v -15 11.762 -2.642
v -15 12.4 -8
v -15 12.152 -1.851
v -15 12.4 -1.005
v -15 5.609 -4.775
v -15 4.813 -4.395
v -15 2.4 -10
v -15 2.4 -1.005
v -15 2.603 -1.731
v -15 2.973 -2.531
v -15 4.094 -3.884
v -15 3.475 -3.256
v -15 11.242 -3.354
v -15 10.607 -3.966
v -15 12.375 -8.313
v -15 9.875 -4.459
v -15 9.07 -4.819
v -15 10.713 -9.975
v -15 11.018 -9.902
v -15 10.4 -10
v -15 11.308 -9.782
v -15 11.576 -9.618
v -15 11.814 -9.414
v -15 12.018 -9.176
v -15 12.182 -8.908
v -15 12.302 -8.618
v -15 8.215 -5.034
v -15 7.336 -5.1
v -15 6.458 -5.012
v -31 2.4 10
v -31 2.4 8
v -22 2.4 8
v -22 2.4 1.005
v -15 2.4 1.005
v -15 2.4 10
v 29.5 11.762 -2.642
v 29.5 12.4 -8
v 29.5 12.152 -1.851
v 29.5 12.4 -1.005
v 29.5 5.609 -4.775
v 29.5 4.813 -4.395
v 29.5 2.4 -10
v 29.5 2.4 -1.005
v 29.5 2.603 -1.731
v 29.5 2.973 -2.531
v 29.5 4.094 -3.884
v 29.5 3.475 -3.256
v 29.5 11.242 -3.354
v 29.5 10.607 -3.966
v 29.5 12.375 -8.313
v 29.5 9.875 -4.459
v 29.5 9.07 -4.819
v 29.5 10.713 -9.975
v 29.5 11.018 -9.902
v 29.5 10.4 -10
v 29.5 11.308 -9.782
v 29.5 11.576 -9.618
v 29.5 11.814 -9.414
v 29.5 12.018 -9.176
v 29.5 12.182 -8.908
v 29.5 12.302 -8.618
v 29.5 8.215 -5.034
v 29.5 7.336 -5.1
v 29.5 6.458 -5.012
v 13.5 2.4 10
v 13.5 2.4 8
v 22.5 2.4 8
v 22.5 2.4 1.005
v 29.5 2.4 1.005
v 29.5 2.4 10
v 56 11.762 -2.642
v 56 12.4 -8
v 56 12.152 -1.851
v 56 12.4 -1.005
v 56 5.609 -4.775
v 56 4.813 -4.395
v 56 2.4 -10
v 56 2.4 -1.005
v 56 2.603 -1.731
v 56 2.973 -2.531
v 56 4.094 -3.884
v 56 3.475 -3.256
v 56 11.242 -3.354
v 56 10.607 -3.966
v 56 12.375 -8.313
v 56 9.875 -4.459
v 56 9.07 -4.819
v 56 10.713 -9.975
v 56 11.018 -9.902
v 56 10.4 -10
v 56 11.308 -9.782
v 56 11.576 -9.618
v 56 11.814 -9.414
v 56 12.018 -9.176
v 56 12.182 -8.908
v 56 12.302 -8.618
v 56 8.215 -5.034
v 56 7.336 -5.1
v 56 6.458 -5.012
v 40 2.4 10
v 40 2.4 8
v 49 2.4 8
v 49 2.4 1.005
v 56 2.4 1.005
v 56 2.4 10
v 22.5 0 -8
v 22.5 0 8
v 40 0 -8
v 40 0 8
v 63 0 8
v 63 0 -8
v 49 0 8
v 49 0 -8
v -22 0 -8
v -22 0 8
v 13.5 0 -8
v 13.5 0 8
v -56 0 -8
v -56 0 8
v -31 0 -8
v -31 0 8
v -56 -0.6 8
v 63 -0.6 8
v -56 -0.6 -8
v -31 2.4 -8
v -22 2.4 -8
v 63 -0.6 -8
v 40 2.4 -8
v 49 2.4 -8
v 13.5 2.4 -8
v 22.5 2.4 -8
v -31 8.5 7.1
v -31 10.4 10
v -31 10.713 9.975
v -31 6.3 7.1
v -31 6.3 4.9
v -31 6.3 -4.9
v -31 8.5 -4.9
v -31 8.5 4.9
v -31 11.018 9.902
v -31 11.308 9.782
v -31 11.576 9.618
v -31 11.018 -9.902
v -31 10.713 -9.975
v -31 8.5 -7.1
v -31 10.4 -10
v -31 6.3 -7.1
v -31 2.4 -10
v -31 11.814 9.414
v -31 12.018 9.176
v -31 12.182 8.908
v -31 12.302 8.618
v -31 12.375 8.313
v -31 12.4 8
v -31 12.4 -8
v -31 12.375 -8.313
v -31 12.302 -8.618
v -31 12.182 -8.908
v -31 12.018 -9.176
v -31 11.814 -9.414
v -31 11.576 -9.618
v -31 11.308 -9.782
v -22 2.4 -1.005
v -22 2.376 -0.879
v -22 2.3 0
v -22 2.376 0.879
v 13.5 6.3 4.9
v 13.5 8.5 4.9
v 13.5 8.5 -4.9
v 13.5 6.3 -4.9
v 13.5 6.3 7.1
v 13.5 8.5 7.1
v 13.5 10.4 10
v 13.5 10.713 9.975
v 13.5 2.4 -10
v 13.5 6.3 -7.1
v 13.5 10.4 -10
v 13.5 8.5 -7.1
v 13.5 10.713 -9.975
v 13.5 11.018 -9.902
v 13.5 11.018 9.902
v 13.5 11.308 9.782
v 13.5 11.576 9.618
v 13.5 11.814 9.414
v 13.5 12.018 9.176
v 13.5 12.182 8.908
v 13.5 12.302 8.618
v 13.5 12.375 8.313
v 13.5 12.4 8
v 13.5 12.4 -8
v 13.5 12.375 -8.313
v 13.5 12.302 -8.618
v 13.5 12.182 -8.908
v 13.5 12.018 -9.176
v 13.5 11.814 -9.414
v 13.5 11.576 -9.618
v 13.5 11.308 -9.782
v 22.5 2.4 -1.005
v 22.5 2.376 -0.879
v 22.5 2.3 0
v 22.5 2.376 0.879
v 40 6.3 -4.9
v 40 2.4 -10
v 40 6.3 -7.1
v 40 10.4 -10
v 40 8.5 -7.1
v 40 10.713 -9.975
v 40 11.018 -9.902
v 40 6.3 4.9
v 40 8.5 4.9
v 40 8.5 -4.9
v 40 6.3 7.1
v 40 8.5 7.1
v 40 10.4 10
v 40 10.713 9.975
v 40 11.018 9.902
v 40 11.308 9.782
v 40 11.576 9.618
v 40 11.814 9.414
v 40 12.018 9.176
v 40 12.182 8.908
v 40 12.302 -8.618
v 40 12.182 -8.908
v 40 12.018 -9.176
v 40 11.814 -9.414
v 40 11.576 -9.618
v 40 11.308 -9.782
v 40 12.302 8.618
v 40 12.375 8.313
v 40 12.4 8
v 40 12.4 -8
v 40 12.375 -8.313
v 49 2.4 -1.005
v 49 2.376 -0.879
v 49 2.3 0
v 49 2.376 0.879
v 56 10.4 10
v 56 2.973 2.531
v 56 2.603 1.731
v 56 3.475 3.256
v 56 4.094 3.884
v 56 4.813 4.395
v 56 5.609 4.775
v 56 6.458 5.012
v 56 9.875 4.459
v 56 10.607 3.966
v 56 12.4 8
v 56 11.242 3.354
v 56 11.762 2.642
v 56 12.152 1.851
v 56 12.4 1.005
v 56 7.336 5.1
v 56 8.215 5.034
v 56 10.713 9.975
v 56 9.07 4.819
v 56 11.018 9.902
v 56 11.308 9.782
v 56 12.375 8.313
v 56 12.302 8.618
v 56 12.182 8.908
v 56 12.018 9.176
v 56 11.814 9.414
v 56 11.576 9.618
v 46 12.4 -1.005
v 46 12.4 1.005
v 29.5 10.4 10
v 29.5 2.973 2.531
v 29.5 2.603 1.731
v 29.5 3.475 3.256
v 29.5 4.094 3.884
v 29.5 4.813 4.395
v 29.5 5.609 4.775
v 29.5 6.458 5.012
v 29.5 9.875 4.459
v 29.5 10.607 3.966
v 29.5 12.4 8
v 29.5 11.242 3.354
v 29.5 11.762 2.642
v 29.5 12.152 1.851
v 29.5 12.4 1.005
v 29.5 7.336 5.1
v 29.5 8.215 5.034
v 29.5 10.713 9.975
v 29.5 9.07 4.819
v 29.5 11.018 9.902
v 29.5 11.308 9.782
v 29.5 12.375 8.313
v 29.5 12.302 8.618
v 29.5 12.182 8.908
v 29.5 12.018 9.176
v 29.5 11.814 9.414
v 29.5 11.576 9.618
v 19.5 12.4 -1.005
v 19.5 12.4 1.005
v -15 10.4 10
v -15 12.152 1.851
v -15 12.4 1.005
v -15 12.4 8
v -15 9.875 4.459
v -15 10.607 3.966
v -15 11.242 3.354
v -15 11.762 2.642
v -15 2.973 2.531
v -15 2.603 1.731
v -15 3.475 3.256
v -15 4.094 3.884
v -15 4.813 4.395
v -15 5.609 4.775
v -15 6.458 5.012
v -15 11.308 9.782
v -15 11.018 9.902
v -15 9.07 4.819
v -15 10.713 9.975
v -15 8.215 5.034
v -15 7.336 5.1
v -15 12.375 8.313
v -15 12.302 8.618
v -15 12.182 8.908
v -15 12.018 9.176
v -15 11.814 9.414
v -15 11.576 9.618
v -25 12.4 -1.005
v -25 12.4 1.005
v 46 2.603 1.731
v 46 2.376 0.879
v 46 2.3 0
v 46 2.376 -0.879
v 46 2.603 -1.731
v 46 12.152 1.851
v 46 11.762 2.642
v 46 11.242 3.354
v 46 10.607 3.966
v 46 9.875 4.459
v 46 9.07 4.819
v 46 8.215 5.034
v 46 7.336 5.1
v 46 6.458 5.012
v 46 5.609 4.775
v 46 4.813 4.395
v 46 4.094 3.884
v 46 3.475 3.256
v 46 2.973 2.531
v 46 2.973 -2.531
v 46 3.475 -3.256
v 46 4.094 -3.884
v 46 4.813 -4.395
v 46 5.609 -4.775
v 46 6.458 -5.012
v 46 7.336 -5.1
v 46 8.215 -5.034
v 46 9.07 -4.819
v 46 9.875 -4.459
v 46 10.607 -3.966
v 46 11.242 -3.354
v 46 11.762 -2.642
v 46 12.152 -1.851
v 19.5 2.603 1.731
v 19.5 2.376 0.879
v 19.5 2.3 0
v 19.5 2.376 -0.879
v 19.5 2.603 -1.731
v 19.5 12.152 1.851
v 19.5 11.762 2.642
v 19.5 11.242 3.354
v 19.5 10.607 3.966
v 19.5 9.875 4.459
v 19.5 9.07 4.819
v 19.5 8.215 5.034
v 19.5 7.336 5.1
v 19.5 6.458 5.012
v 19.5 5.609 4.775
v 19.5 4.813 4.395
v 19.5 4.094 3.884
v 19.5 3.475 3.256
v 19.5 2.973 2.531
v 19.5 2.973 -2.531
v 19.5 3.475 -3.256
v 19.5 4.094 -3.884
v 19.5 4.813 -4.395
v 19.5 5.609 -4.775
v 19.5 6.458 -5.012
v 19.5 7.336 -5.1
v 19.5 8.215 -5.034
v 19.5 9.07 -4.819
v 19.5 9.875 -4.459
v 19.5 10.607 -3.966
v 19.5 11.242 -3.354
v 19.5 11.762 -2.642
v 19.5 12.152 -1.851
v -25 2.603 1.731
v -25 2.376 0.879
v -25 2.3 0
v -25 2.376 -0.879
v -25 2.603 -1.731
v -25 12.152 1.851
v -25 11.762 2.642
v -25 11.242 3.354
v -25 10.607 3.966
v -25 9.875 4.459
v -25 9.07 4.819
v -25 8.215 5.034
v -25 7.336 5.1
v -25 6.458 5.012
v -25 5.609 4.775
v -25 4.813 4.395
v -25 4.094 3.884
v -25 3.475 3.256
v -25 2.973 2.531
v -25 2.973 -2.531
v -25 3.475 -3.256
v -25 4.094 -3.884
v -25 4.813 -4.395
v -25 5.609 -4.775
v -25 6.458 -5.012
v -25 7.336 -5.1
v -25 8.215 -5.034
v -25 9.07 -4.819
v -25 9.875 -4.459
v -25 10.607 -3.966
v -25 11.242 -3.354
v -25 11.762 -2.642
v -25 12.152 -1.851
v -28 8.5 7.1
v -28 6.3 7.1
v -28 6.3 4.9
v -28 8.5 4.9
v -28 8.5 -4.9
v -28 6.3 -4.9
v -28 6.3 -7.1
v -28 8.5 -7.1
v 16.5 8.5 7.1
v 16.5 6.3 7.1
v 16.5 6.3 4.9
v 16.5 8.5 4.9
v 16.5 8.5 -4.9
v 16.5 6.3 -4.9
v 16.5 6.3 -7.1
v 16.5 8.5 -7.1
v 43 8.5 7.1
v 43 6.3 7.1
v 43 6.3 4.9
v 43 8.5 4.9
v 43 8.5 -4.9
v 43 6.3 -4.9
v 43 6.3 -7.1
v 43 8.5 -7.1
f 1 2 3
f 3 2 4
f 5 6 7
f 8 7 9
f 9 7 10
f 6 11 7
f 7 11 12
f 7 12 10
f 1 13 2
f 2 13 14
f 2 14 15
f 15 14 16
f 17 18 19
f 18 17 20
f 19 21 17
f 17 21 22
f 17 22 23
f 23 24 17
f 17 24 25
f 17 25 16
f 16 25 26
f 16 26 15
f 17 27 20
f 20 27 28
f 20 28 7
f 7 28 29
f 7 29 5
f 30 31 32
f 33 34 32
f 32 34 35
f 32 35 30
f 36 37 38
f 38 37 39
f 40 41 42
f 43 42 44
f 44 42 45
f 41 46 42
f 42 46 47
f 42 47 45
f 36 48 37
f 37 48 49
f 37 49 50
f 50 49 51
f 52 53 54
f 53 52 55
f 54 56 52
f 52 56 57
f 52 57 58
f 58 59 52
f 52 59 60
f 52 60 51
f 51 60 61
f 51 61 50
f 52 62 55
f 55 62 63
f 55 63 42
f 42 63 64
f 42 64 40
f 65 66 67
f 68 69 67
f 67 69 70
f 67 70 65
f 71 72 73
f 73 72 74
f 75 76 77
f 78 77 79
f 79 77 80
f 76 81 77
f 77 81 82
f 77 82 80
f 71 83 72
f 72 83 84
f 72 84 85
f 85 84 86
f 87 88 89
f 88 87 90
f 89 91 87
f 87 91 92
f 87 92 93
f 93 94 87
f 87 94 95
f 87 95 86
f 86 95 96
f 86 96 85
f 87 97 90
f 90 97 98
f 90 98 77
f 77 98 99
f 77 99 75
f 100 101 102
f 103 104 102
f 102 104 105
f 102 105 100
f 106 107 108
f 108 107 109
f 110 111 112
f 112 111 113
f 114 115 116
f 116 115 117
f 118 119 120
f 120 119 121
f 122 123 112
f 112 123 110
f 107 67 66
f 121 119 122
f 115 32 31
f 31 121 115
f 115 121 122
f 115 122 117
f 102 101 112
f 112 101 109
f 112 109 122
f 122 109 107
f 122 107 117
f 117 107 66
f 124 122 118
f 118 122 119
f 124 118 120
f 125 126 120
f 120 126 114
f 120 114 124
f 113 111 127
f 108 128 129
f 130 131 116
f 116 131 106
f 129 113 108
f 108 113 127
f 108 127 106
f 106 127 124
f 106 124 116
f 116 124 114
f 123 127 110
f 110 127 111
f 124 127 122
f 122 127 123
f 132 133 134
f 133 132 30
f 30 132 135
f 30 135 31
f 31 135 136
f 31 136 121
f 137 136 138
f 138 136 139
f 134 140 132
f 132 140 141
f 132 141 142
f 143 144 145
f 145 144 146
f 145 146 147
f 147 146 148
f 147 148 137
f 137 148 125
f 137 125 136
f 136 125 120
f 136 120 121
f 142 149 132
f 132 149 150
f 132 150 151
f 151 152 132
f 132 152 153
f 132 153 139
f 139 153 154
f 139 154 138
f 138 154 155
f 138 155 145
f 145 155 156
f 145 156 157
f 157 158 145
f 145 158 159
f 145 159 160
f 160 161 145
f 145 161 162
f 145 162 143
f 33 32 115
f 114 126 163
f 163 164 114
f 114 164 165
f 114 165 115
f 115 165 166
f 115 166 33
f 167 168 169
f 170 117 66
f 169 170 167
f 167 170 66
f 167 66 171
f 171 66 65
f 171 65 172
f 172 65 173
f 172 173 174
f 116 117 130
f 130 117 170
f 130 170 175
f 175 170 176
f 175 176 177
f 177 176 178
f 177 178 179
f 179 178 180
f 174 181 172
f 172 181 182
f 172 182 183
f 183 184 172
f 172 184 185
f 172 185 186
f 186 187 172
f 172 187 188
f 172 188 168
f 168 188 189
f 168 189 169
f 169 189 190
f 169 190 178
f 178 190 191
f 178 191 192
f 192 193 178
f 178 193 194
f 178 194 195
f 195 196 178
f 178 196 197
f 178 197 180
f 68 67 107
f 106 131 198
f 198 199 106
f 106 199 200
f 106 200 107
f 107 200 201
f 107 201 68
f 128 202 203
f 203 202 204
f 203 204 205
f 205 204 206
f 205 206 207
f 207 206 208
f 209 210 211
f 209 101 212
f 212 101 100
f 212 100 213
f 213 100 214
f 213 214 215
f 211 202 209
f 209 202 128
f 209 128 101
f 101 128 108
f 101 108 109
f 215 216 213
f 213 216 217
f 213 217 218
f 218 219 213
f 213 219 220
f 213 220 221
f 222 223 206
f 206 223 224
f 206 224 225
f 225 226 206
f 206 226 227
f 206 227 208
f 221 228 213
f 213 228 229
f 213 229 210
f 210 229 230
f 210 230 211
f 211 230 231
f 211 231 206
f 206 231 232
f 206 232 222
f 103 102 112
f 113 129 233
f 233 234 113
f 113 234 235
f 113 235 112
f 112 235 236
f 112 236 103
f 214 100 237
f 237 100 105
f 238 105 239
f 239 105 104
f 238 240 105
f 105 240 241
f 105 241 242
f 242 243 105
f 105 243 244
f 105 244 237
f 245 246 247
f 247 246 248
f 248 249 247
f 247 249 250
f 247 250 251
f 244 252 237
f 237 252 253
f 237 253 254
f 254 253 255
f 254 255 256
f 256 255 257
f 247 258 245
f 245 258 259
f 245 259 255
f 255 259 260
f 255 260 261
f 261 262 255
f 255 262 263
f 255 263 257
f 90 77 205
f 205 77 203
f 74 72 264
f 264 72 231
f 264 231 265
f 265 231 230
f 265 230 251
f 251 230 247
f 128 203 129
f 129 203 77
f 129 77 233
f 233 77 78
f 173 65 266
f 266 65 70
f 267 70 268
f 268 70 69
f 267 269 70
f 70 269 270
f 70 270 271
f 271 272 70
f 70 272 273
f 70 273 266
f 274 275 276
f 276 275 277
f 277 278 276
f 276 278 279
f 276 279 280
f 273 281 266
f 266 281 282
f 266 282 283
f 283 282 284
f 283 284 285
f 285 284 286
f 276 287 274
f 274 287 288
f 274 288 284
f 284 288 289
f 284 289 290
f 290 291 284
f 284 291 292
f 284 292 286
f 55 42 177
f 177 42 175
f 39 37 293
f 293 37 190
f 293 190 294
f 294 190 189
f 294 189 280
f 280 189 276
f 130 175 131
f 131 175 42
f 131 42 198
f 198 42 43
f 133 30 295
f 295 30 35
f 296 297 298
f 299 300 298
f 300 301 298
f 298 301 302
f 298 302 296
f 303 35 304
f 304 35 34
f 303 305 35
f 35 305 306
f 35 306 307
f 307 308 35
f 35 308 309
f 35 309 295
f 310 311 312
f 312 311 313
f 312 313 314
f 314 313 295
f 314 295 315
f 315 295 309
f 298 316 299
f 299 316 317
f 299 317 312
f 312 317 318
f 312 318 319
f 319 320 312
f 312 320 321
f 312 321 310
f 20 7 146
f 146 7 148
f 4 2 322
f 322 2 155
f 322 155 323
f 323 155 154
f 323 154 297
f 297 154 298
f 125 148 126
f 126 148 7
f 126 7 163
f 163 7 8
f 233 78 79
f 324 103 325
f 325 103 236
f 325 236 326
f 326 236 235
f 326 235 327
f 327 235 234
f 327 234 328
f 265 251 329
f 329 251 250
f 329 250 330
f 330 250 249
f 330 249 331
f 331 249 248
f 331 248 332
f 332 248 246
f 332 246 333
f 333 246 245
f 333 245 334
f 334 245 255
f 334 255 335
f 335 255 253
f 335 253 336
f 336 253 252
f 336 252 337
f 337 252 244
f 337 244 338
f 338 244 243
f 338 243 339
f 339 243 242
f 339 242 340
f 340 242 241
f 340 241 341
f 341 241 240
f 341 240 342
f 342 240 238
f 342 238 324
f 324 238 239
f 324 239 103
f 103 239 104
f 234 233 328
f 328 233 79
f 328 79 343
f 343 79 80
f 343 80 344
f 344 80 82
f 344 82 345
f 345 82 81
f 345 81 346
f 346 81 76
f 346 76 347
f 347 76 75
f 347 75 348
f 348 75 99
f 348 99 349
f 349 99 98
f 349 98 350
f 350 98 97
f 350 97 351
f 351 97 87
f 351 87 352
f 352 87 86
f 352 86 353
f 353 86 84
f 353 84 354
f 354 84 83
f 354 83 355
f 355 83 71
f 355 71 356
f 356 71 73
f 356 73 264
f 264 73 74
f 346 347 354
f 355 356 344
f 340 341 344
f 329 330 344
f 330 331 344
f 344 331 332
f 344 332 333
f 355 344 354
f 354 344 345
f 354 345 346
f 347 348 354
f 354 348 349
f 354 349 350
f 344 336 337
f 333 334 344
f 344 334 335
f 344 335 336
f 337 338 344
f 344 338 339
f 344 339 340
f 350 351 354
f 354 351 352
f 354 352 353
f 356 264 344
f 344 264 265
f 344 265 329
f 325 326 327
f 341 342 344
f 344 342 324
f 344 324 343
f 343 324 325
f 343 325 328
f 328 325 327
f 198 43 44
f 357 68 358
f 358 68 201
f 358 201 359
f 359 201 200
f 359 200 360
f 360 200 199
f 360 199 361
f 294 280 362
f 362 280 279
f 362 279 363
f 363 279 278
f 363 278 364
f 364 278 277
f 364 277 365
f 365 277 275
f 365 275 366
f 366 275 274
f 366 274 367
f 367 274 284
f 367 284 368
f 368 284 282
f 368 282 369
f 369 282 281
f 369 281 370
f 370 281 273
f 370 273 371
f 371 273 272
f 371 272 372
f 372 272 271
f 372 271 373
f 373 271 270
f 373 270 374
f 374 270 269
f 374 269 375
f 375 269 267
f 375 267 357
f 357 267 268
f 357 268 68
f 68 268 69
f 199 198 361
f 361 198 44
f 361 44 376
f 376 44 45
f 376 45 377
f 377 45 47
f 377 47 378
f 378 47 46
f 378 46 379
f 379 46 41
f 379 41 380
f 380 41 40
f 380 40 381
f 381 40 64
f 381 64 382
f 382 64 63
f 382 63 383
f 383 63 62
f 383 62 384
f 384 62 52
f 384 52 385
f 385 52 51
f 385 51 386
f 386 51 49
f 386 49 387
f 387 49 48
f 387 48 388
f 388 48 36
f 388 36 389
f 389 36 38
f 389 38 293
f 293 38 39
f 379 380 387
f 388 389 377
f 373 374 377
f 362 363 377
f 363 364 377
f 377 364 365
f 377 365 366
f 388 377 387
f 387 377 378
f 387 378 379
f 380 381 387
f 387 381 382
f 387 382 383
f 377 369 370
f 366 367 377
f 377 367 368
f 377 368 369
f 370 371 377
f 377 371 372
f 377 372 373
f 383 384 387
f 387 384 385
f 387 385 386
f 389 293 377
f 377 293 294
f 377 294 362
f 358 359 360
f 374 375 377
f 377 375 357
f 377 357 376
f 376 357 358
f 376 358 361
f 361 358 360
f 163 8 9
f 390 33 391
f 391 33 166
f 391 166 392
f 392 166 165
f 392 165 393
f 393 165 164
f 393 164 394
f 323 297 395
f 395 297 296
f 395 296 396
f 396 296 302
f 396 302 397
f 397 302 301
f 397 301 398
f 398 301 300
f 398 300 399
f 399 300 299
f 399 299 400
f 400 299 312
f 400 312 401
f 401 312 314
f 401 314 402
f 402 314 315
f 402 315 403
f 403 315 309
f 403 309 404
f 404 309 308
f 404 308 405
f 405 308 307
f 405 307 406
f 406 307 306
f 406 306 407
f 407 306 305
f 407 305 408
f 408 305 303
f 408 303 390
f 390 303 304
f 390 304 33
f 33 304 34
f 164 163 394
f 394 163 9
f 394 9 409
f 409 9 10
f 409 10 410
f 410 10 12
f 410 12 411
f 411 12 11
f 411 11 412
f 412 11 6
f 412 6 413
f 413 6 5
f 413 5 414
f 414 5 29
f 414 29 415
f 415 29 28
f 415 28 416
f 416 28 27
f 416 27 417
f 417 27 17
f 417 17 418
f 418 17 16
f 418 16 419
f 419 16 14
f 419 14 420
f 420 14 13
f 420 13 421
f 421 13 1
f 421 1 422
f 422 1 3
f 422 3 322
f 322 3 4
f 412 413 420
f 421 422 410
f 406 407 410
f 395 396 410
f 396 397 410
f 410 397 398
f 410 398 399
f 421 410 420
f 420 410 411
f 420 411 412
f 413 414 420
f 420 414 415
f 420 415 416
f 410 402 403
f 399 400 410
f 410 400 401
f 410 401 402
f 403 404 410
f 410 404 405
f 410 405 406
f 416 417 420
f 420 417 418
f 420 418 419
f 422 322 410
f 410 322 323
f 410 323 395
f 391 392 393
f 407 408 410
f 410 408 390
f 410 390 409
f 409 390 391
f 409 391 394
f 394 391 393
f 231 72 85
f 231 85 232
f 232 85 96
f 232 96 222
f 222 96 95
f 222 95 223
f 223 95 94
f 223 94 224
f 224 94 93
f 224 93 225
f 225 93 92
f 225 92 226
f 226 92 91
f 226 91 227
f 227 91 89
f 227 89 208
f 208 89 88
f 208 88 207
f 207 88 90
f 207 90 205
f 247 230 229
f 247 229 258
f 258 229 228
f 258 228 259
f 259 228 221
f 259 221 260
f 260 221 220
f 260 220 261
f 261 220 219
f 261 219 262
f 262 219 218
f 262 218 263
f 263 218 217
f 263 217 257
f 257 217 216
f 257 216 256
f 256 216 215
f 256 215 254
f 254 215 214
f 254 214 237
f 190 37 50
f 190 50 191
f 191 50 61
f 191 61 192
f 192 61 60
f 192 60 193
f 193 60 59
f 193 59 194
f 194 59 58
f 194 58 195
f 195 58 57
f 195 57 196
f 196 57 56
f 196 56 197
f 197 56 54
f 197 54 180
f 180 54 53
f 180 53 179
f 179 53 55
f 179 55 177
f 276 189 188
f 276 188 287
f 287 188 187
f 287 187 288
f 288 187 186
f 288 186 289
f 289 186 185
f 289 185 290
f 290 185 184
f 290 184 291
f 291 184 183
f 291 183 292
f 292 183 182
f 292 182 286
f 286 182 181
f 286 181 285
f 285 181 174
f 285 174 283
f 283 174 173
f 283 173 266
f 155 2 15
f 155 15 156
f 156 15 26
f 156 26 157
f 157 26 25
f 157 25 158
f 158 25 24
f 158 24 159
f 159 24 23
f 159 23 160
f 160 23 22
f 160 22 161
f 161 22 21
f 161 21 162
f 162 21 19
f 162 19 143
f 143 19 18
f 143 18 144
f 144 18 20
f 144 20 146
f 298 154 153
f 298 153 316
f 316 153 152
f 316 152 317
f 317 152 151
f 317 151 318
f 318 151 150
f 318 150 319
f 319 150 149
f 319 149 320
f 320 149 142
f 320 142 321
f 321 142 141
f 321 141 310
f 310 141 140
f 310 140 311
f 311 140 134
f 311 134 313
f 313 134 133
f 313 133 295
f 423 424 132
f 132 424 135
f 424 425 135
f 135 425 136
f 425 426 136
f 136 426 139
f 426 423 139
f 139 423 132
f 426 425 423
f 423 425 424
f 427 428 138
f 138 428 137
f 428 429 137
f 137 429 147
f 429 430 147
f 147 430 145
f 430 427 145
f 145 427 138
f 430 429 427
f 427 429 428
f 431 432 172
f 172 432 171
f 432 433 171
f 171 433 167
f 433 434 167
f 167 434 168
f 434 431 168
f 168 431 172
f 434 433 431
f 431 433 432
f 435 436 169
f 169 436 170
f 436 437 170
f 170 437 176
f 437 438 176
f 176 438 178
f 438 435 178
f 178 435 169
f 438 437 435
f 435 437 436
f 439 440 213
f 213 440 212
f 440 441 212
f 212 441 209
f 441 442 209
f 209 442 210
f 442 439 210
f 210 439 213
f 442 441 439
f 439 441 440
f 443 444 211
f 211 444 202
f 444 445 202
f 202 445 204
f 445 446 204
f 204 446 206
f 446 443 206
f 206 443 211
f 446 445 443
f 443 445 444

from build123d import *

# Parameters (mm, degrees)
BOSS_EXTRUDE1_DEPTH = 0.6
SKETCH3_W           = 9
SKETCH3_H           = 16
BOSS_EXTRUDE2_DEPTH = 2.4
SKETCH4_W           = 16
SKETCH4_H           = 20
BOSS_EXTRUDE3_DEPTH = 10
SKETCH5_R           = 5.1
CUT_EXTRUDE1_DEPTH  = 10
SKETCH6_R           = 5.1
CUT_EXTRUDE3_DEPTH  = 10
SKETCH7_R           = 5.1
CUT_EXTRUDE4_DEPTH  = 10
FILLET1_R           = 2
SKETCH8_W           = 2.2
SKETCH8_H           = 2.2
CUT_EXTRUDE5_DEPTH  = 3
SKETCH9_W           = 2.2
SKETCH9_H           = 2.2
CUT_EXTRUDE6_DEPTH  = 3
SKETCH10_W          = 2.2
SKETCH10_H          = 2.2
CUT_EXTRUDE7_DEPTH  = 3


with BuildPart() as part:
    # Sketch2 → Boss-Extrude1 (new body)
    with BuildSketch(Plane(origin=(0, 0, 0), x_dir=(1, 0, 0), z_dir=(0, 1, 0))):
        Polygon((-56, 8), (56, 8), (63, 8), (63, -8), (56, -8), (-56, -8), align=None)
    extrude(amount=-BOSS_EXTRUDE1_DEPTH)

    # Sketch3 → Boss-Extrude2 (add)
    with BuildSketch(Plane(origin=(0, 0, 0), x_dir=(1, 0, 0), z_dir=(0, 1, 0))):
        with Locations((44.5, 0)):
            Rectangle(SKETCH3_W, SKETCH3_H)
        with Locations((18, 0)):
            Rectangle(SKETCH3_W, SKETCH3_H)
        with Locations((-26.5, 0)):
            Rectangle(SKETCH3_W, SKETCH3_H)
    extrude(amount=BOSS_EXTRUDE2_DEPTH)

    # Sketch4 → Boss-Extrude3 (add)
    with BuildSketch(Plane(origin=(0, 2.4, 0), x_dir=(1, 0, 0), z_dir=(0, 1, 0))):
        with Locations((-23, 0)):
            Rectangle(SKETCH4_W, SKETCH4_H)
        with Locations((21.5, 0)):
            Rectangle(SKETCH4_W, SKETCH4_H)
        with Locations((48, 0)):
            Rectangle(SKETCH4_W, SKETCH4_H)
    extrude(amount=BOSS_EXTRUDE3_DEPTH)

    # Sketch5 → Cut-Extrude1 (cut)
    with BuildSketch(Plane(origin=(56, 0, 0), x_dir=(0, 0, -1), z_dir=(1, 0, 0))):
        with Locations((0, 7.4)):
            Circle(SKETCH5_R)
    extrude(amount=-CUT_EXTRUDE1_DEPTH, mode=Mode.SUBTRACT)

    # Sketch6 → Cut-Extrude3 (cut)
    with BuildSketch(Plane(origin=(29.5, 0, 0), x_dir=(0, 0, -1), z_dir=(1, 0, 0))):
        with Locations((0, 7.4)):
            Circle(SKETCH6_R)
    extrude(amount=-CUT_EXTRUDE3_DEPTH, mode=Mode.SUBTRACT)

    # Sketch7 → Cut-Extrude4 (cut)
    with BuildSketch(Plane(origin=(-15, 0, 0), x_dir=(0, 0, -1), z_dir=(1, 0, 0))):
        with Locations((0, 7.4)):
            Circle(SKETCH7_R)
    extrude(amount=-CUT_EXTRUDE4_DEPTH, mode=Mode.SUBTRACT)

    # Fillet1
    fillet1_edges = [part.edges().sort_by_distance(p)[0] for p in [
        (-23, 12.4, 10),
        (-23, 12.4, -10),
        (48, 12.4, 10),
        (48, 12.4, -10),
        (21.5, 12.4, 10),
        (21.5, 12.4, -10),
    ]]
    fillet(fillet1_edges, radius=FILLET1_R)

    # Sketch8 → Cut-Extrude5 (cut)
    with BuildSketch(Plane.ZY.offset(31)):
        with Locations((6, 7.4)):
            Rectangle(SKETCH8_W, SKETCH8_H)
        with Locations((-6, 7.4)):
            Rectangle(SKETCH8_W, SKETCH8_H)
    extrude(amount=-CUT_EXTRUDE5_DEPTH, mode=Mode.SUBTRACT)

    # Sketch9 → Cut-Extrude6 (cut)
    with BuildSketch(Plane(origin=(13.5, 0, -13.5), x_dir=(0, 0, 1), z_dir=(-1, 0, 0))):
        with Locations((19.5, 7.4)):
            Rectangle(SKETCH9_W, SKETCH9_H)
        with Locations((7.5, 7.4)):
            Rectangle(SKETCH9_W, SKETCH9_H)
    extrude(amount=-CUT_EXTRUDE6_DEPTH, mode=Mode.SUBTRACT)

    # Sketch10 → Cut-Extrude7 (cut)
    with BuildSketch(Plane(origin=(40, 0, -40), x_dir=(0, 0, 1), z_dir=(-1, 0, 0))):
        with Locations((46, 7.4)):
            Rectangle(SKETCH10_W, SKETCH10_H)
        with Locations((34, 7.4)):
            Rectangle(SKETCH10_W, SKETCH10_H)
    extrude(amount=-CUT_EXTRUDE7_DEPTH, mode=Mode.SUBTRACT)


solid = part.part
